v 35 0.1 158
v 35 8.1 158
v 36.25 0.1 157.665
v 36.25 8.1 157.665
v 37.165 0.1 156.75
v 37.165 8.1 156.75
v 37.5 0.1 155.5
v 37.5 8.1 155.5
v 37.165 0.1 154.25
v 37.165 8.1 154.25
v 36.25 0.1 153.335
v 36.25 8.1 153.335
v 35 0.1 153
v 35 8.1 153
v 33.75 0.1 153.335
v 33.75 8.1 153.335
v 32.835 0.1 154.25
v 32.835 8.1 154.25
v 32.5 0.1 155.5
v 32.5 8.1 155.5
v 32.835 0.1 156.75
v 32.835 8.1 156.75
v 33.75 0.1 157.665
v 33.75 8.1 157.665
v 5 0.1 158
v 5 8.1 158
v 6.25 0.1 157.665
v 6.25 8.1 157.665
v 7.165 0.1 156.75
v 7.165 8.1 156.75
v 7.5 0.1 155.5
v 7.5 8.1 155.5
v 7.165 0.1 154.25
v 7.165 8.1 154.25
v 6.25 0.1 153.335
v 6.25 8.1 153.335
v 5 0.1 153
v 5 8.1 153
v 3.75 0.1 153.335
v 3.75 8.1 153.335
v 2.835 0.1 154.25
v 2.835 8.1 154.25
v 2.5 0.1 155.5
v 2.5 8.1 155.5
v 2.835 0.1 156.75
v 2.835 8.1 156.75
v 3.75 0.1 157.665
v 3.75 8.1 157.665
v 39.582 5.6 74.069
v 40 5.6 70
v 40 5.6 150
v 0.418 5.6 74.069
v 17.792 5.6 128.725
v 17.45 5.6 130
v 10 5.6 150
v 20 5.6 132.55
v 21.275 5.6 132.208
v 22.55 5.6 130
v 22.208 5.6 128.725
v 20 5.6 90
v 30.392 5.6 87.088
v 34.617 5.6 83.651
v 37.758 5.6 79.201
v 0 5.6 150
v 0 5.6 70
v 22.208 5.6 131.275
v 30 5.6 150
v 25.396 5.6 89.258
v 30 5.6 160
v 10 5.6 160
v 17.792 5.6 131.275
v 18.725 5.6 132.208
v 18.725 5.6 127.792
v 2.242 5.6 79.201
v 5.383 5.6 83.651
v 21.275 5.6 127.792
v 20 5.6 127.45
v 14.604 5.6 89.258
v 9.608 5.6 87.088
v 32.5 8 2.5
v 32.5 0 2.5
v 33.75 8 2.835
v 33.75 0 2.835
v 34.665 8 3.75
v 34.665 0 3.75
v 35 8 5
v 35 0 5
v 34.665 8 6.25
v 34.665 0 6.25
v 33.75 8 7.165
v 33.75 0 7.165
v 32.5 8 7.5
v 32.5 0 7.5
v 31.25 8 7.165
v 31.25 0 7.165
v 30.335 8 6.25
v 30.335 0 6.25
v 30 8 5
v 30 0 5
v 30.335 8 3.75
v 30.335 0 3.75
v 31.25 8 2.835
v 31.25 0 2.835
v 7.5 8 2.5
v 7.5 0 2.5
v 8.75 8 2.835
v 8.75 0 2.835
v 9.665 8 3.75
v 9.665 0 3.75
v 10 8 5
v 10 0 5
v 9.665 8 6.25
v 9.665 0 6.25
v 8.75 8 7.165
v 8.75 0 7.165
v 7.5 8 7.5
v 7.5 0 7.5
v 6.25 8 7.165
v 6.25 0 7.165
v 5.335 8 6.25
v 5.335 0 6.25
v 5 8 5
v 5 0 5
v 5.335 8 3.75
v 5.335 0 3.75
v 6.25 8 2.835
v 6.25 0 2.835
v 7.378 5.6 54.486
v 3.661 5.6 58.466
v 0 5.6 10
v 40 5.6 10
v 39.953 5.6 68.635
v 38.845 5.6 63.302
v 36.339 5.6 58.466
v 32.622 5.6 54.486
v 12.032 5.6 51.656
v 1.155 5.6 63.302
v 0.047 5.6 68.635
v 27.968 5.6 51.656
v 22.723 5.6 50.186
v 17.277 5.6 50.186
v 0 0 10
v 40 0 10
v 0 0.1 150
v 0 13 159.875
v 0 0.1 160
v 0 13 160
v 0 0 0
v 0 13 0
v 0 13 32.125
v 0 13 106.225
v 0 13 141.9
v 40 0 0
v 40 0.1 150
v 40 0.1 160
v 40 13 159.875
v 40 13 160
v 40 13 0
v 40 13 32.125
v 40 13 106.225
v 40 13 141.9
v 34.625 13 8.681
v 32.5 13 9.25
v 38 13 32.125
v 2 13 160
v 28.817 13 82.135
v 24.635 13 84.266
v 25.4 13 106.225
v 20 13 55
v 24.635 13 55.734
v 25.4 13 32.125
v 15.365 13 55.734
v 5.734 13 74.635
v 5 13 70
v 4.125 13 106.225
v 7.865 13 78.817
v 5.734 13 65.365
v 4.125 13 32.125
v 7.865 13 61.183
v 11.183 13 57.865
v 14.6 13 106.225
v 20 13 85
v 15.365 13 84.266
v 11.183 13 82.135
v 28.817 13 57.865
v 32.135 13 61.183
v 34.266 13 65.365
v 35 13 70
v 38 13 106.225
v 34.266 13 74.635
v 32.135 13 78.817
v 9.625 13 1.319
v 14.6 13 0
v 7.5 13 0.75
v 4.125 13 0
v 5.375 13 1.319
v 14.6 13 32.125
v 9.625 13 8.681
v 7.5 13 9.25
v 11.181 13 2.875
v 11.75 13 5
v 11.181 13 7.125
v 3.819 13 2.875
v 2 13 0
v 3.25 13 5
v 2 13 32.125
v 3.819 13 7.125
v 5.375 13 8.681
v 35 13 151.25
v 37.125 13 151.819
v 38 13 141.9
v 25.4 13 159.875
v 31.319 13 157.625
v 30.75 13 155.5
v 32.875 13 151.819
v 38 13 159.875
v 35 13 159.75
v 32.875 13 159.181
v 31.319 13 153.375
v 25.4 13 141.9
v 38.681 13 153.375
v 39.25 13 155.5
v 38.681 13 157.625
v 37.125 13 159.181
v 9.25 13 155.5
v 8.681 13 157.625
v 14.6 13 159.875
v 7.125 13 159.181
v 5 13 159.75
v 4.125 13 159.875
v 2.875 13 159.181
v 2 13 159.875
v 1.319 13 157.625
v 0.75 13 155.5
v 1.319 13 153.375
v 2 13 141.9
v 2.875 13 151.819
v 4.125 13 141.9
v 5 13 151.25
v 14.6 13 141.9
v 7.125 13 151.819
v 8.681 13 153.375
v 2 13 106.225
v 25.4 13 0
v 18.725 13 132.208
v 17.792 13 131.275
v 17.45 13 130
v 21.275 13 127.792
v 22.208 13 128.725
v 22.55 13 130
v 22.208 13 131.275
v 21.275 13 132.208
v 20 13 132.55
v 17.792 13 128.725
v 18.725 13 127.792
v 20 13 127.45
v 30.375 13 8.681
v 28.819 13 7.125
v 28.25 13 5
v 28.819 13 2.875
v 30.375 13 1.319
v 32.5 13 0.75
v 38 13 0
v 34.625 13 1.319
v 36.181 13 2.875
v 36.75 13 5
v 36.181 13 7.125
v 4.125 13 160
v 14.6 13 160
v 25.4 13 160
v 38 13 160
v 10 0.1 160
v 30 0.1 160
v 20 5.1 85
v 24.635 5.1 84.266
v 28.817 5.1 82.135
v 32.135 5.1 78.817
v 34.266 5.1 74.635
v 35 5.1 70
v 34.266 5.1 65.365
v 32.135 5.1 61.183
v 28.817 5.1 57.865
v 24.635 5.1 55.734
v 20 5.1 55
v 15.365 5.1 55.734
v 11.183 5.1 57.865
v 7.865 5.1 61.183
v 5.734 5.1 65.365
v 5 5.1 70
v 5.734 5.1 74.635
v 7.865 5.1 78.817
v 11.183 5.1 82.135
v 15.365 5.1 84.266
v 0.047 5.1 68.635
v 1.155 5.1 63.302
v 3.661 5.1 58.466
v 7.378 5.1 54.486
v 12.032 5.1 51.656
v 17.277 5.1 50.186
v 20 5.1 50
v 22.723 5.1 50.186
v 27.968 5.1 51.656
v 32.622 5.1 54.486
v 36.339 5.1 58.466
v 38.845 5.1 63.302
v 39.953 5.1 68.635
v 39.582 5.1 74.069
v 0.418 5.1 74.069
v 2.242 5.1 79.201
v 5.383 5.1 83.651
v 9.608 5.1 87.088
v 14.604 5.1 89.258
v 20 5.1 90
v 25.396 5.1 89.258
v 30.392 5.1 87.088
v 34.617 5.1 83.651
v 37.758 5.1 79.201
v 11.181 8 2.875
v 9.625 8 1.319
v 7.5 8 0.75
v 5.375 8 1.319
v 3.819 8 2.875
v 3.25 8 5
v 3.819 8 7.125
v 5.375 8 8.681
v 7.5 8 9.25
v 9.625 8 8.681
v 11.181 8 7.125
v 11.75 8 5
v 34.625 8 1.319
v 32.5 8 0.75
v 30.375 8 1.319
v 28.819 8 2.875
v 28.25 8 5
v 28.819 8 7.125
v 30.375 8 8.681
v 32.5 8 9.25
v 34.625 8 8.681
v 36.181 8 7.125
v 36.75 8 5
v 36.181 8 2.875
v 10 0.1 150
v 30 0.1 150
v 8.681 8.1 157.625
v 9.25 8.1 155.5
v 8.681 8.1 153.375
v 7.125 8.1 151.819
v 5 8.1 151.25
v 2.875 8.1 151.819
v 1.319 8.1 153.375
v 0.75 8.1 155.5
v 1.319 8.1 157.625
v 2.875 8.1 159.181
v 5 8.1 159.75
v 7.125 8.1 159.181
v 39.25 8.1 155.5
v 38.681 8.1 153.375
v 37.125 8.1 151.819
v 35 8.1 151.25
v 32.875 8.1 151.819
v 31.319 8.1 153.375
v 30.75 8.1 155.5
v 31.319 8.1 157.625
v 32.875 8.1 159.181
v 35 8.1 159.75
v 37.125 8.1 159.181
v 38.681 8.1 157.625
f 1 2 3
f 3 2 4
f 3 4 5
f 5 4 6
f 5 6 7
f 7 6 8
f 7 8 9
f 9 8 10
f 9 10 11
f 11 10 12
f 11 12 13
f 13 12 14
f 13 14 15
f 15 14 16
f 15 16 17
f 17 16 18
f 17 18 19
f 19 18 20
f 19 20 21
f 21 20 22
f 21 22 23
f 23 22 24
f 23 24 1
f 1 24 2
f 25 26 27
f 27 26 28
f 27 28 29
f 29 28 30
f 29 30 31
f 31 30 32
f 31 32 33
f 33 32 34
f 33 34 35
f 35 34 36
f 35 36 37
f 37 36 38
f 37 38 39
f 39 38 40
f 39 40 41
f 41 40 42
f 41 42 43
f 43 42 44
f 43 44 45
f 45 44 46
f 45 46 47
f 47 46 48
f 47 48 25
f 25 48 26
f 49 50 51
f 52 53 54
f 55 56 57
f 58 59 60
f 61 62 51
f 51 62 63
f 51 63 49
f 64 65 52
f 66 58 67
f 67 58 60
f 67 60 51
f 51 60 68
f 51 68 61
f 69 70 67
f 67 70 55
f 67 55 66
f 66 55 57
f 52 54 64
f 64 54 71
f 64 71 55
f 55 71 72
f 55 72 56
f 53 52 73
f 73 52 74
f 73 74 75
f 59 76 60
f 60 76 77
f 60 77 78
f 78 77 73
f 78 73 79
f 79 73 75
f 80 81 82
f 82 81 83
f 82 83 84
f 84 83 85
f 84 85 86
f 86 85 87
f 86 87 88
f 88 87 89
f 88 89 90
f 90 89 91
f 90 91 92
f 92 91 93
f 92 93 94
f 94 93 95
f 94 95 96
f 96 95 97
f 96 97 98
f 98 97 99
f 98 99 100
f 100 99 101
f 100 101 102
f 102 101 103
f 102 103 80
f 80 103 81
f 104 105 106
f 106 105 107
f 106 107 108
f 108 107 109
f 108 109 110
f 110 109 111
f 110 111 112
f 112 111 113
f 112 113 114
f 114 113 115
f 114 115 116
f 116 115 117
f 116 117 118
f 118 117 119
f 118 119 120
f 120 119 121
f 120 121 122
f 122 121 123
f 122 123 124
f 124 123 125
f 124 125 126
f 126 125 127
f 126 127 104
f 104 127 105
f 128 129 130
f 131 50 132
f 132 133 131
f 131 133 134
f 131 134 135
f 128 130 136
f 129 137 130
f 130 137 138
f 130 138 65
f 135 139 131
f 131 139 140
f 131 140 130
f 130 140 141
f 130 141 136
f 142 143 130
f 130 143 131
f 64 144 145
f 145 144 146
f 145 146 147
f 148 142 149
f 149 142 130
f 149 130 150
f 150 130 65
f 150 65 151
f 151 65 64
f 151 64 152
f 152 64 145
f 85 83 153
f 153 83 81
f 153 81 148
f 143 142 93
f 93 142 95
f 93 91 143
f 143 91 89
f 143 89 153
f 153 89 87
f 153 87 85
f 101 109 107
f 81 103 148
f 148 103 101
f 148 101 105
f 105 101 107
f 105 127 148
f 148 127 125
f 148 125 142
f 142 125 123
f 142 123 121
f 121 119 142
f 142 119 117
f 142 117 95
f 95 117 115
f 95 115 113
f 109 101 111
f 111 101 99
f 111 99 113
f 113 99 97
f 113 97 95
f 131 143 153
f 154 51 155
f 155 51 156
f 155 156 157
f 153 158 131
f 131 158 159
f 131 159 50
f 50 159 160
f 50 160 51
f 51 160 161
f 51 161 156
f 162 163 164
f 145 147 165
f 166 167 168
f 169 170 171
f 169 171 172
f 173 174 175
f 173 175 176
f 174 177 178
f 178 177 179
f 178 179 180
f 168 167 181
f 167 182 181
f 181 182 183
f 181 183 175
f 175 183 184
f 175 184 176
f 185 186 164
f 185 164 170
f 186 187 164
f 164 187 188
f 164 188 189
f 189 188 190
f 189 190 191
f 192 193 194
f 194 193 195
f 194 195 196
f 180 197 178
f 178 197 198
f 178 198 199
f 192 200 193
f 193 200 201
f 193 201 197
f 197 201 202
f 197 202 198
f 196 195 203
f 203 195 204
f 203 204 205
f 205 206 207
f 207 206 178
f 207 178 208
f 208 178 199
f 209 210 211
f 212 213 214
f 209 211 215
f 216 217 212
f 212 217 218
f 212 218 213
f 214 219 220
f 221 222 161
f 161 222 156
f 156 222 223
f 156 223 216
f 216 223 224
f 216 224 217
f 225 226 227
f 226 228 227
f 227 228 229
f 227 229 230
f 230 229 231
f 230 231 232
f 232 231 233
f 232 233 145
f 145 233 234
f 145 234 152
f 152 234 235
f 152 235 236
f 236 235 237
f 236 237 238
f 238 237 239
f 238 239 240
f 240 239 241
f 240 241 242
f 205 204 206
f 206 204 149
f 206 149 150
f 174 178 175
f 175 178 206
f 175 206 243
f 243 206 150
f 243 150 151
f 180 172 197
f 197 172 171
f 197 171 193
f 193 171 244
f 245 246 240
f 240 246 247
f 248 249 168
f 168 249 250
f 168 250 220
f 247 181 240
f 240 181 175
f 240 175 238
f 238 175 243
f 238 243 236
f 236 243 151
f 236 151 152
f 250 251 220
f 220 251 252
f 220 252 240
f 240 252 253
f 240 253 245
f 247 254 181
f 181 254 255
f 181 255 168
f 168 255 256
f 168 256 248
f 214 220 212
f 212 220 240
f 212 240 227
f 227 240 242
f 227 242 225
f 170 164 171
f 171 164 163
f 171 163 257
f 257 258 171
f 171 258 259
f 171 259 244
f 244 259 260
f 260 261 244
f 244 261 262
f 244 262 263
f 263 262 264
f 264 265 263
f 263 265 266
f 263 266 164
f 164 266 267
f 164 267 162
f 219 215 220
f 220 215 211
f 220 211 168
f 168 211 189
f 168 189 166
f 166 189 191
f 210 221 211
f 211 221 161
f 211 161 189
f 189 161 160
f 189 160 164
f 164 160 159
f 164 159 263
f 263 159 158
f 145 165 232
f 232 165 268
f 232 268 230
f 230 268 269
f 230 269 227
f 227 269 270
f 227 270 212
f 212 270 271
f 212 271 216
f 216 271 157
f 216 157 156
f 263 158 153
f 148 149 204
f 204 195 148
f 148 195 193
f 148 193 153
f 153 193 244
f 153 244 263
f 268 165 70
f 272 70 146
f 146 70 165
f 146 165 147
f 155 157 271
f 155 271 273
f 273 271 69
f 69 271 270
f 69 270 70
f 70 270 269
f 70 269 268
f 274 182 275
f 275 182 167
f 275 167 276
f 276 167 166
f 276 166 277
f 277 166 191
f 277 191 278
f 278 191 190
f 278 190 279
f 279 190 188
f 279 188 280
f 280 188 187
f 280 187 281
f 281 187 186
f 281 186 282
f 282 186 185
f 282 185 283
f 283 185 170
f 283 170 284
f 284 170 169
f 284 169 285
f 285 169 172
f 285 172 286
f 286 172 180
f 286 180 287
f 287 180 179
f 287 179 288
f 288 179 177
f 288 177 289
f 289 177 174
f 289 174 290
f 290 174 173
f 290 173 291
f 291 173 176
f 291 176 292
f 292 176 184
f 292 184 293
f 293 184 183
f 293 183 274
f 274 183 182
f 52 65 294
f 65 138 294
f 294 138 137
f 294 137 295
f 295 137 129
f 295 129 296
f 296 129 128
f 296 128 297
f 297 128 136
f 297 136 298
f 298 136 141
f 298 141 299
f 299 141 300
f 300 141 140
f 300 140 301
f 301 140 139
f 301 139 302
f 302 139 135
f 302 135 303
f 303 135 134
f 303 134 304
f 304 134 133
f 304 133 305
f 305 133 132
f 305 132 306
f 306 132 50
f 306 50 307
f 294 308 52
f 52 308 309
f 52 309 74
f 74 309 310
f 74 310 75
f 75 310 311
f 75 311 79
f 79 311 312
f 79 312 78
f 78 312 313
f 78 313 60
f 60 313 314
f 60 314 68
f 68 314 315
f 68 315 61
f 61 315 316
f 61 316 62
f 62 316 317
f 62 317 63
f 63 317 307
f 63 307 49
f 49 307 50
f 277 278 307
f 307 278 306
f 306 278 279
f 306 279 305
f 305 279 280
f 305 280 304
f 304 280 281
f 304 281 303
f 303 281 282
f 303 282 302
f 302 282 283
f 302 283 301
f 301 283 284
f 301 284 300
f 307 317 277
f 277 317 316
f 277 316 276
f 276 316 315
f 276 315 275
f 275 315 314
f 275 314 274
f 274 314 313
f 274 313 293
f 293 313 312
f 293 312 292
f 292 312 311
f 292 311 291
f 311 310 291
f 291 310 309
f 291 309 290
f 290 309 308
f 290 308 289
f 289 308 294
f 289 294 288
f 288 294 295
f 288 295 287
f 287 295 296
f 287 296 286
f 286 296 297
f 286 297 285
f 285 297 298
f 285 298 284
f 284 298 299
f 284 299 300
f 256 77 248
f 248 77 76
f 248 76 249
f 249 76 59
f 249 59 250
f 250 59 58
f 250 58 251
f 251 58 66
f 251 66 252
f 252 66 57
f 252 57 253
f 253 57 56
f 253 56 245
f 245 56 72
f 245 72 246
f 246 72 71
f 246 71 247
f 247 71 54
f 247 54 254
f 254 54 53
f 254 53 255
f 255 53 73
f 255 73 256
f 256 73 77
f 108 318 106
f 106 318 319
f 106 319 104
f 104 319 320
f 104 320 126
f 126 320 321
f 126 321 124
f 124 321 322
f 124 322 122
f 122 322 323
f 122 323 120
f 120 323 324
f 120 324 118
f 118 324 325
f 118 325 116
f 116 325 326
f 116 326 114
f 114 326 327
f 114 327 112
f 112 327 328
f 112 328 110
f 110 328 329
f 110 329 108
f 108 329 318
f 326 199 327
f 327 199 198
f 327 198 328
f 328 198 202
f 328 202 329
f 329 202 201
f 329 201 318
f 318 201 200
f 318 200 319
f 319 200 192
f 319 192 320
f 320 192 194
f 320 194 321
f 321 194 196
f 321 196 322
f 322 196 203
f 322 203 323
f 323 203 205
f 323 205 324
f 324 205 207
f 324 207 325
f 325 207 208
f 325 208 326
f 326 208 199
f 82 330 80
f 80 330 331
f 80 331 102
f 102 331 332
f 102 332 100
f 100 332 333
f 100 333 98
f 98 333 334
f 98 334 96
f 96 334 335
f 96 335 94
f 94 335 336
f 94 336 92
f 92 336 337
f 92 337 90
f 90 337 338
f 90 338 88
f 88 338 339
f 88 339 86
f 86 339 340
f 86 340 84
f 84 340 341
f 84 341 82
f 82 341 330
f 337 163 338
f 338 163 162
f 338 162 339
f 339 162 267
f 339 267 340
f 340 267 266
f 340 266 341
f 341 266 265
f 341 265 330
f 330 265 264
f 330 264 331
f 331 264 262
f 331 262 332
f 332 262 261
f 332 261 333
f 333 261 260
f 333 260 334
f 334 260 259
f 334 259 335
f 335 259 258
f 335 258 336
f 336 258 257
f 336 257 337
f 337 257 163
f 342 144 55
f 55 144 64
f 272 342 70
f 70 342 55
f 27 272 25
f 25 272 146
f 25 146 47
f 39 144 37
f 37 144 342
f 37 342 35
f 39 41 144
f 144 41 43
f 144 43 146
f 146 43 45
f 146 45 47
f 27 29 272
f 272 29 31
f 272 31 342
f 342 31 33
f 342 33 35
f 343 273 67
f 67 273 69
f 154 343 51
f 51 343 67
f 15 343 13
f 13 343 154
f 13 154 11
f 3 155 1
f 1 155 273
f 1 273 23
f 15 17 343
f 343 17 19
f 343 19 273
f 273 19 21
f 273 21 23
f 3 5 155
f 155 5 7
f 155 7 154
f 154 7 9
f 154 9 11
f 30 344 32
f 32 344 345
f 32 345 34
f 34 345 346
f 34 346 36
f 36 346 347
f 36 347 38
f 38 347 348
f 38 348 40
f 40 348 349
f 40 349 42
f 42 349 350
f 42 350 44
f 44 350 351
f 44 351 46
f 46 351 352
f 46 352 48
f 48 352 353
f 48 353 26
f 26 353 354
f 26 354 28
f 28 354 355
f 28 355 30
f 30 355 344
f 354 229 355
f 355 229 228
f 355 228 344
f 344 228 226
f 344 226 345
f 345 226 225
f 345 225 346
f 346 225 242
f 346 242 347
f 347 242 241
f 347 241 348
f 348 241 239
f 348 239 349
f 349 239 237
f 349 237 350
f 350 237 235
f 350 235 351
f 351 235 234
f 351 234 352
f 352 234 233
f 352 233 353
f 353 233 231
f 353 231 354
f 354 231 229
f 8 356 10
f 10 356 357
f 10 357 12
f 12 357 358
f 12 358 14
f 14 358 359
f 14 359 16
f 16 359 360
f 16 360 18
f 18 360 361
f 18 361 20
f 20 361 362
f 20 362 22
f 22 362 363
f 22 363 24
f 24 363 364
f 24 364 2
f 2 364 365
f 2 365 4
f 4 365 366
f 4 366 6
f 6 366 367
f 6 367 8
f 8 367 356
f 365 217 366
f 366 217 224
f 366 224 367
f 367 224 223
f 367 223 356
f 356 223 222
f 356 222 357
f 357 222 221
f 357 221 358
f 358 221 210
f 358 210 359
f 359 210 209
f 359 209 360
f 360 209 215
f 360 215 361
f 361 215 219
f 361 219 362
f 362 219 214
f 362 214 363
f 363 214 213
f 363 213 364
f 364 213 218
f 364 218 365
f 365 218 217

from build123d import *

# Parameters (mm, degrees)
SKIZZE1_W                            = 40
SKIZZE1_H                            = 13
AUFSATZ_LINEAR_AUSTRAGEN1_DEPTH      = 10
SKIZZE3_W                            = 40
SKIZZE3_H                            = 7.4
AUFSATZ_LINEAR_AUSTRAGEN3_DEPTH      = 150
SCHNITT_LINEAR_AUSTRAGEN1_DEPTH      = 166.090157187
SCHNITT_LINEAR_AUSTRAGEN1_DEPTH_BACK = 11
SKIZZE4_R                            = 15
SKIZZE7_R                            = 20
AUFSATZ_LINEAR_AUSTRAGEN4_DEPTH      = 0.5
SKIZZE5_R                            = 2.55
SCHNITT_LINEAR_AUSTRAGEN2_DEPTH      = 150
SCHNITT_LINEAR_START                 = -0.5
SKIZZE8_R                            = 15
SCHNITT_LINEAR_AUSTRAGEN4_DEPTH      = 0.5
SKIZZE10_R                           = 2.5
SCHNITT_LINEAR_AUSTRAGEN5_DEPTH      = 17
SKIZZE15_R                           = 4.25
SCHNITT_LINEAR_AUSTRAGEN7_DEPTH      = 5
SKIZZE16_W                           = 10
SKIZZE16_H                           = 10
AUFSATZ_LINEAR_AUSTRAGEN5_DEPTH      = 5.5
SKIZZE17_R                           = 2.5
SCHNITT_LINEAR_AUSTRAGEN8_DEPTH      = 21.6
SKIZZE18_R                           = 4.25
SCHNITT_LINEAR_AUSTRAGEN9_DEPTH      = 4.9


with BuildPart() as part:
    # Skizze1 → Aufsatz-Linear austragen1 (new body)
    with BuildSketch(Plane.XY):
        with Locations((20, 6.5)):
            Rectangle(SKIZZE1_W, SKIZZE1_H)
    extrude(amount=AUFSATZ_LINEAR_AUSTRAGEN1_DEPTH)

    # Skizze3 → Aufsatz-Linear austragen3 (add)
    with BuildSketch(Plane.XY.offset(10)):
        with Locations((20, 9.3)):
            Rectangle(SKIZZE3_W, SKIZZE3_H)
    extrude(amount=AUFSATZ_LINEAR_AUSTRAGEN3_DEPTH)

    # Skizze4 → Schnitt-Linear austragen1 (cut, two sides: drawn at the far end of the back side and taken through both)
    with BuildSketch(Plane.XZ.offset(-5.6).offset(-SCHNITT_LINEAR_AUSTRAGEN1_DEPTH_BACK)):
        with Locations(Location((20, 70, 0), (0, 0, 90))):
            Circle(SKIZZE4_R)
    extrude(amount=SCHNITT_LINEAR_AUSTRAGEN1_DEPTH + SCHNITT_LINEAR_AUSTRAGEN1_DEPTH_BACK, mode=Mode.SUBTRACT)

    # Skizze7 → Aufsatz-Linear austragen4 (add)
    with BuildSketch(Plane.XZ.offset(-5.6)):
        with Locations(Location((20, 70, 0), (0, 0, 180))):
            Circle(SKIZZE7_R)
    extrude(amount=AUFSATZ_LINEAR_AUSTRAGEN4_DEPTH)

    # Skizze5 → Schnitt-Linear austragen2 (cut)
    with BuildSketch(Plane(origin=(0, 5.6, 0), x_dir=(-1, 0, 0), z_dir=(0, -1, 0))):
        with Locations(Location((-20, -130, 0), (0, 0, 90))):
            Circle(SKIZZE5_R)
    extrude(amount=-SCHNITT_LINEAR_AUSTRAGEN2_DEPTH, mode=Mode.SUBTRACT)

    # Skizze8 → Schnitt-Linear austragen4 (cut)
    with BuildSketch(Plane(origin=(0, 5.6, 0), x_dir=(1, 0, 0), z_dir=(0, 1, 0)).offset(SCHNITT_LINEAR_START)):
        with Locations(Location((20, -70, 0), (0, 0, 270))):
            Circle(SKIZZE8_R)
    extrude(amount=SCHNITT_LINEAR_AUSTRAGEN4_DEPTH, mode=Mode.SUBTRACT)

    # Skizze10 → Schnitt-Linear austragen5 (cut)
    with BuildSketch(Plane.XZ):
        with Locations(Location((7.5, 5, 0), (0, 0, 270))):
            Circle(SKIZZE10_R)
        with Locations(Location((32.5, 5, 0), (0, 0, 270))):
            Circle(SKIZZE10_R)
    extrude(amount=-SCHNITT_LINEAR_AUSTRAGEN5_DEPTH, mode=Mode.SUBTRACT)

    # Skizze15 → Schnitt-Linear austragen7 (cut)
    with BuildSketch(Plane(origin=(0, 13, 0), x_dir=(1, 0, 0), z_dir=(0, 1, 0))):
        with Locations(Location((7.5, -5, 0), (0, 0, 270))):
            Circle(SKIZZE15_R)
        with Locations(Location((32.5, -5, 0), (0, 0, 270))):
            Circle(SKIZZE15_R)
    extrude(amount=-SCHNITT_LINEAR_AUSTRAGEN7_DEPTH, mode=Mode.SUBTRACT)

    # Skizze16 → Aufsatz-Linear austragen5 (add)
    with BuildSketch(Plane.XZ.offset(-5.6)):
        with Locations((5, 155)):
            Rectangle(SKIZZE16_W, SKIZZE16_H)
        with Locations((35, 155)):
            Rectangle(SKIZZE16_W, SKIZZE16_H)
    extrude(amount=AUFSATZ_LINEAR_AUSTRAGEN5_DEPTH)

    # Skizze17 → Schnitt-Linear austragen8 (cut)
    with BuildSketch(Plane(origin=(0, 13, 0), x_dir=(1, 0, 0), z_dir=(0, 1, 0))):
        with Locations(Location((5, -155.5, 0), (0, 0, 270))):
            Circle(SKIZZE17_R)
        with Locations(Location((35, -155.5, 0), (0, 0, 270))):
            Circle(SKIZZE17_R)
    extrude(amount=-SCHNITT_LINEAR_AUSTRAGEN8_DEPTH, mode=Mode.SUBTRACT)

    # Skizze18 → Schnitt-Linear austragen9 (cut)
    with BuildSketch(Plane(origin=(0, 13, 0), x_dir=(1, 0, 0), z_dir=(0, 1, 0))):
        with Locations(Location((5, -155.5, 0), (0, 0, 270))):
            Circle(SKIZZE18_R)
        with Locations(Location((35, -155.5, 0), (0, 0, 270))):
            Circle(SKIZZE18_R)
    extrude(amount=-SCHNITT_LINEAR_AUSTRAGEN9_DEPTH, mode=Mode.SUBTRACT)


solid = part.part
